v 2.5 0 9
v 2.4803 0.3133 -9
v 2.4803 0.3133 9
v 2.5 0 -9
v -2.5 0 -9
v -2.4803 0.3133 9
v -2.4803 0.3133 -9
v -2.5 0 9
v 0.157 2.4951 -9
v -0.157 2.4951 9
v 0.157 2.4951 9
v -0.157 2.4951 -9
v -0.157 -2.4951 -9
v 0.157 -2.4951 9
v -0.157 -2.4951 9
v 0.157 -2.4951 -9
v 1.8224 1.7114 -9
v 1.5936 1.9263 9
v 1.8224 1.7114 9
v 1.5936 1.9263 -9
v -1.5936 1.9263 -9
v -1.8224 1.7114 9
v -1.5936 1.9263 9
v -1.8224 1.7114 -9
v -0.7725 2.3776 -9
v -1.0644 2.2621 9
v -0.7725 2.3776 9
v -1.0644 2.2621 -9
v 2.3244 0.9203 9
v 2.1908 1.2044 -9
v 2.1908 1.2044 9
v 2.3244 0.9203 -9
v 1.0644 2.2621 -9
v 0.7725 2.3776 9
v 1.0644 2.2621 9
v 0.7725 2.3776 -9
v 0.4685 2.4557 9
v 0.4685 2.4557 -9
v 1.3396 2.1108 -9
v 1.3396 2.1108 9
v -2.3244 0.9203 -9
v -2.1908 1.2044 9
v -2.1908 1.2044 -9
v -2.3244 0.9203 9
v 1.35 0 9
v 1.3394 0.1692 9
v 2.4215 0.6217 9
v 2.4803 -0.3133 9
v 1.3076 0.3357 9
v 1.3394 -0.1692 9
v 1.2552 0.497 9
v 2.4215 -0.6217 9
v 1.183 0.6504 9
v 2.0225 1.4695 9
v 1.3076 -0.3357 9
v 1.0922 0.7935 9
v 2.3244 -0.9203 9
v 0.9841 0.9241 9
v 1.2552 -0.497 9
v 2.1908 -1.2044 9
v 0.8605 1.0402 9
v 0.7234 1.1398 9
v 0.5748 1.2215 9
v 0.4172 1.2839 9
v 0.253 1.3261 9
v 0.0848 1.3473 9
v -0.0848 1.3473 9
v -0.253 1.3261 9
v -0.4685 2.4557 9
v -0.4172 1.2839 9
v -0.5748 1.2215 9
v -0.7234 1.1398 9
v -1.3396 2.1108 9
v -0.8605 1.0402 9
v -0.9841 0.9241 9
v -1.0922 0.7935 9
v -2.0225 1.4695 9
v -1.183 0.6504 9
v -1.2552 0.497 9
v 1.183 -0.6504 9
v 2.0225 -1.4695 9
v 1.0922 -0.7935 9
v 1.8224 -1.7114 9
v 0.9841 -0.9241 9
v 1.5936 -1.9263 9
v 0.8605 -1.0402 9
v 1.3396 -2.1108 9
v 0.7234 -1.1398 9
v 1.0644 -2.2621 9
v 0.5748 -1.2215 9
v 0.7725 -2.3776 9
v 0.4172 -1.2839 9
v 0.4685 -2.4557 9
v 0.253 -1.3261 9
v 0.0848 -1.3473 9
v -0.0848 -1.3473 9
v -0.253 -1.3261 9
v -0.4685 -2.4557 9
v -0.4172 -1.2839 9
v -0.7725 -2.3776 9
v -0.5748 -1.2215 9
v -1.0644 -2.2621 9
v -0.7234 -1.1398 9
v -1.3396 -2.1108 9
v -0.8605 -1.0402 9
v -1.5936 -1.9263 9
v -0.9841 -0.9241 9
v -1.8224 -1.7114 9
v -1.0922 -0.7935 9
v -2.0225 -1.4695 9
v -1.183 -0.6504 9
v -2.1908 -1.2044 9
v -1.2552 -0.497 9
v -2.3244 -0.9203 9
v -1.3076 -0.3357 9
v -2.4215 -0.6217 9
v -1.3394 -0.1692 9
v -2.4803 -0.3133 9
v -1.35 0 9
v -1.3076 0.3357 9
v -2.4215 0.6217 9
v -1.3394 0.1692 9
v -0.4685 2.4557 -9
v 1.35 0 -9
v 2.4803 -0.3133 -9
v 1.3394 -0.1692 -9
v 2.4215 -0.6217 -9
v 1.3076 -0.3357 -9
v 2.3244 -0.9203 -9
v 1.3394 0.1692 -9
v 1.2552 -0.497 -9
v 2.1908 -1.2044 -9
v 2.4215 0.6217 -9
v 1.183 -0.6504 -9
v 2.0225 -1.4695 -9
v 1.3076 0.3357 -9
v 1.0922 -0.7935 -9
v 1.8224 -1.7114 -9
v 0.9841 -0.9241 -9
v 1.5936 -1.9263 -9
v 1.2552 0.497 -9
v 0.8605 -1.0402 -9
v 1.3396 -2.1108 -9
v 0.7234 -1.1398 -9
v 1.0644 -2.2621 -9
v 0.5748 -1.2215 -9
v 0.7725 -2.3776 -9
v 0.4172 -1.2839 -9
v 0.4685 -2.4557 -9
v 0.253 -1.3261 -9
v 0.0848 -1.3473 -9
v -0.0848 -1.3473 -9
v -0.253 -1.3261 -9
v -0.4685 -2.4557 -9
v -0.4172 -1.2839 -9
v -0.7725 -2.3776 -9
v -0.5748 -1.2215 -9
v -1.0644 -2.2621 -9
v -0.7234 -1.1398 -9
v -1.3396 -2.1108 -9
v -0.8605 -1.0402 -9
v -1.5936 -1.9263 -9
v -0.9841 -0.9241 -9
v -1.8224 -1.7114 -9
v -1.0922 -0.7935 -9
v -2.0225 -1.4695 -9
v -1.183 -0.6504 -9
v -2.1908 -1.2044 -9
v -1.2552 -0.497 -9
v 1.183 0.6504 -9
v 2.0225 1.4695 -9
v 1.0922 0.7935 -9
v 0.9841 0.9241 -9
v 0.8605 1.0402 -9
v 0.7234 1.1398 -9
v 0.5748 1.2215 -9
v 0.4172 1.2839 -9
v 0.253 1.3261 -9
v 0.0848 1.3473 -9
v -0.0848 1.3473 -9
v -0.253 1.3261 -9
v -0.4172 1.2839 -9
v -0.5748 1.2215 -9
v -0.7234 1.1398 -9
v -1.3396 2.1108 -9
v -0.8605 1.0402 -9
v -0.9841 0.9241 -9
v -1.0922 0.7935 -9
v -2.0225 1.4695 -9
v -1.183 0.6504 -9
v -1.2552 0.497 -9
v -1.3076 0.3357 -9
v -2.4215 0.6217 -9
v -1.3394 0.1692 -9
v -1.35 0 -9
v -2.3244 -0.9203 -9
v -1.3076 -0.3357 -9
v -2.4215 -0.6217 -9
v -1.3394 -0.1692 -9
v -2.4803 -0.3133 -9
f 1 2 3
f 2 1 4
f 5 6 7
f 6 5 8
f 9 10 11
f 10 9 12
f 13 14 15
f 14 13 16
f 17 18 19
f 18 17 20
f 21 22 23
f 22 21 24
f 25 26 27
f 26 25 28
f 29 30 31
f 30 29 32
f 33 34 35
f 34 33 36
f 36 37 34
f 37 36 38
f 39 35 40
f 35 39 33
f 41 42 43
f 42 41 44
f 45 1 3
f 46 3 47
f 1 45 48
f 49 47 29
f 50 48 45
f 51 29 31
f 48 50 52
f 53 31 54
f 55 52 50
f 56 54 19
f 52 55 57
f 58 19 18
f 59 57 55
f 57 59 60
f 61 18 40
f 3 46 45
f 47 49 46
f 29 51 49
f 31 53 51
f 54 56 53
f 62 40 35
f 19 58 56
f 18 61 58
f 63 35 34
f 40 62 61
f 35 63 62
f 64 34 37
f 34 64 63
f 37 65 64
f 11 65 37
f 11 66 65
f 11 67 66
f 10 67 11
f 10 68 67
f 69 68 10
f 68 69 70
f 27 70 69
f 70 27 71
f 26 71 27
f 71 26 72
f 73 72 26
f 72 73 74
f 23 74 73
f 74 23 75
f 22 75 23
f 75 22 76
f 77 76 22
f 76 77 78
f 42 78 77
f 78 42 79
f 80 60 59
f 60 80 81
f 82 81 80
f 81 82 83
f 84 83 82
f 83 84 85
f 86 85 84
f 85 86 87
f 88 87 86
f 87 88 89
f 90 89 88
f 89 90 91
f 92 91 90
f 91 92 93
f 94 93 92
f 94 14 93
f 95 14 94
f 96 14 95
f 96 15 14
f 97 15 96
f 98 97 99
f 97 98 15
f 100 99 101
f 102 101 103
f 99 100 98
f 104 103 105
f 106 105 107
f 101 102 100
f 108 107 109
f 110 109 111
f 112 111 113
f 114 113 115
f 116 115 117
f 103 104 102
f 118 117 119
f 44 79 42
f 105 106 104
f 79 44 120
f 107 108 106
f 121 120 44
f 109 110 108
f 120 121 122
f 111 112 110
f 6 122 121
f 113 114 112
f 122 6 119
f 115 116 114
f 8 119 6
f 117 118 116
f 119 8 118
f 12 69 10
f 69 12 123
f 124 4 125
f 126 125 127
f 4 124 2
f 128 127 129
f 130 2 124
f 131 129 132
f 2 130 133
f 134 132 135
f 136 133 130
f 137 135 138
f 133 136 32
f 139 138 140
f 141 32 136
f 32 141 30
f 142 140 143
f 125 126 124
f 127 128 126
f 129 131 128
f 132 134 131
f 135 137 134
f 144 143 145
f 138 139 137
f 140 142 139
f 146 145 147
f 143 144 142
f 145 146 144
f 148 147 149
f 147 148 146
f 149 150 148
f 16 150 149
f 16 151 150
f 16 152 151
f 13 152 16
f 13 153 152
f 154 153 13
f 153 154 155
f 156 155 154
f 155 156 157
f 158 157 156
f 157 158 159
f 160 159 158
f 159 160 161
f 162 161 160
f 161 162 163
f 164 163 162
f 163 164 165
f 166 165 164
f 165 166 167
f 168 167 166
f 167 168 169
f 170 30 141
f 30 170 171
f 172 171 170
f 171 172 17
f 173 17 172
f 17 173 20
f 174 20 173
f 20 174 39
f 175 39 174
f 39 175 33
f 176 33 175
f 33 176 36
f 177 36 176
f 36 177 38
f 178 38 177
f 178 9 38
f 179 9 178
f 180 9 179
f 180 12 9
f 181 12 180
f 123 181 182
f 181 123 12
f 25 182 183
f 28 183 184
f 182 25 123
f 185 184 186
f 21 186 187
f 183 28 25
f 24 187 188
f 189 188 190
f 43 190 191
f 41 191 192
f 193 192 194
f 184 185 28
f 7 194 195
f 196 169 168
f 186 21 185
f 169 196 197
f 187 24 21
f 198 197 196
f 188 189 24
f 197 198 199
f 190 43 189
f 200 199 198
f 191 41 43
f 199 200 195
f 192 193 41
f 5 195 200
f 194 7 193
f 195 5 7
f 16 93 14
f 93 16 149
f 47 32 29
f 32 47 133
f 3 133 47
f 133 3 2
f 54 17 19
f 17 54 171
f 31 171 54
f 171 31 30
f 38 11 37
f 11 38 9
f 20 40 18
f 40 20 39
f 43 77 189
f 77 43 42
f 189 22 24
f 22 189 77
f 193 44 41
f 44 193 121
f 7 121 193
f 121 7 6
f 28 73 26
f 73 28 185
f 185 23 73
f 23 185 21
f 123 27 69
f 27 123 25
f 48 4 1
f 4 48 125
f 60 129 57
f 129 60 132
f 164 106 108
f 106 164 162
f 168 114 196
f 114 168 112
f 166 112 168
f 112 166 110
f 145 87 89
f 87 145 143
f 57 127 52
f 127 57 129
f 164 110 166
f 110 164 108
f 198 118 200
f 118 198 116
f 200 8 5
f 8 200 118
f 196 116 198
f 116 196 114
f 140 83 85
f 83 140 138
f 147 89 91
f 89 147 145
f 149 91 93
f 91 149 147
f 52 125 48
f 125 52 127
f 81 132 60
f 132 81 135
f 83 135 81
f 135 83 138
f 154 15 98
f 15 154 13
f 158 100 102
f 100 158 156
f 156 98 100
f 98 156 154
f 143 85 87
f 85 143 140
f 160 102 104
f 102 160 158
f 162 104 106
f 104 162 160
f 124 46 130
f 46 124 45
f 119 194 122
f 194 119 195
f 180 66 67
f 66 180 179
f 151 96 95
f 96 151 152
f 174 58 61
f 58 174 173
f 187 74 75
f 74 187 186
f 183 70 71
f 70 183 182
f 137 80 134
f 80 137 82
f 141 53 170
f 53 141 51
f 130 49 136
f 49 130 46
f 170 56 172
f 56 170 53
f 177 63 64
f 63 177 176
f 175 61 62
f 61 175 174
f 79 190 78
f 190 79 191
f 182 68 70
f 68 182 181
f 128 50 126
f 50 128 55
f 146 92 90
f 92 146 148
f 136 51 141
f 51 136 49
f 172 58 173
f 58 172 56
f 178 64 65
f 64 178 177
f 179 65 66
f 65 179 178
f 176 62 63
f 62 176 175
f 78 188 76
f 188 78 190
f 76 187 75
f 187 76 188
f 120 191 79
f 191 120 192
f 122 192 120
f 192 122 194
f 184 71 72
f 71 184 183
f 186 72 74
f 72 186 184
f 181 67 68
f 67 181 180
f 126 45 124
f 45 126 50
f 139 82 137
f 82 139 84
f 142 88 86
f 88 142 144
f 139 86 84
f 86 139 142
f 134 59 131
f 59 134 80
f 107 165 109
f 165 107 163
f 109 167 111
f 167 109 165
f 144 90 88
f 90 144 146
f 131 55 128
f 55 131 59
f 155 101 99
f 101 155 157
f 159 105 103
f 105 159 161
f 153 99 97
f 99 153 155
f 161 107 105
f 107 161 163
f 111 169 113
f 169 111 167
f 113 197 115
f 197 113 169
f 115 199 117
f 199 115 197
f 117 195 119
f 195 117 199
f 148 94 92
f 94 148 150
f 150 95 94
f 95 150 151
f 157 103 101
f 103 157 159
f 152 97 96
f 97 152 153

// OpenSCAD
$fn = 50;


difference() {
	union() {
		translate(v = [0, 0, -9.0000000000]) {
			cylinder(h = 18, r = 2.5000000000);
		}
	}
	union() {
		translate(v = [0, 0, -100.0000000000]) {
			cylinder(h = 200, r = 1.3500000000);
		}
	}
}
